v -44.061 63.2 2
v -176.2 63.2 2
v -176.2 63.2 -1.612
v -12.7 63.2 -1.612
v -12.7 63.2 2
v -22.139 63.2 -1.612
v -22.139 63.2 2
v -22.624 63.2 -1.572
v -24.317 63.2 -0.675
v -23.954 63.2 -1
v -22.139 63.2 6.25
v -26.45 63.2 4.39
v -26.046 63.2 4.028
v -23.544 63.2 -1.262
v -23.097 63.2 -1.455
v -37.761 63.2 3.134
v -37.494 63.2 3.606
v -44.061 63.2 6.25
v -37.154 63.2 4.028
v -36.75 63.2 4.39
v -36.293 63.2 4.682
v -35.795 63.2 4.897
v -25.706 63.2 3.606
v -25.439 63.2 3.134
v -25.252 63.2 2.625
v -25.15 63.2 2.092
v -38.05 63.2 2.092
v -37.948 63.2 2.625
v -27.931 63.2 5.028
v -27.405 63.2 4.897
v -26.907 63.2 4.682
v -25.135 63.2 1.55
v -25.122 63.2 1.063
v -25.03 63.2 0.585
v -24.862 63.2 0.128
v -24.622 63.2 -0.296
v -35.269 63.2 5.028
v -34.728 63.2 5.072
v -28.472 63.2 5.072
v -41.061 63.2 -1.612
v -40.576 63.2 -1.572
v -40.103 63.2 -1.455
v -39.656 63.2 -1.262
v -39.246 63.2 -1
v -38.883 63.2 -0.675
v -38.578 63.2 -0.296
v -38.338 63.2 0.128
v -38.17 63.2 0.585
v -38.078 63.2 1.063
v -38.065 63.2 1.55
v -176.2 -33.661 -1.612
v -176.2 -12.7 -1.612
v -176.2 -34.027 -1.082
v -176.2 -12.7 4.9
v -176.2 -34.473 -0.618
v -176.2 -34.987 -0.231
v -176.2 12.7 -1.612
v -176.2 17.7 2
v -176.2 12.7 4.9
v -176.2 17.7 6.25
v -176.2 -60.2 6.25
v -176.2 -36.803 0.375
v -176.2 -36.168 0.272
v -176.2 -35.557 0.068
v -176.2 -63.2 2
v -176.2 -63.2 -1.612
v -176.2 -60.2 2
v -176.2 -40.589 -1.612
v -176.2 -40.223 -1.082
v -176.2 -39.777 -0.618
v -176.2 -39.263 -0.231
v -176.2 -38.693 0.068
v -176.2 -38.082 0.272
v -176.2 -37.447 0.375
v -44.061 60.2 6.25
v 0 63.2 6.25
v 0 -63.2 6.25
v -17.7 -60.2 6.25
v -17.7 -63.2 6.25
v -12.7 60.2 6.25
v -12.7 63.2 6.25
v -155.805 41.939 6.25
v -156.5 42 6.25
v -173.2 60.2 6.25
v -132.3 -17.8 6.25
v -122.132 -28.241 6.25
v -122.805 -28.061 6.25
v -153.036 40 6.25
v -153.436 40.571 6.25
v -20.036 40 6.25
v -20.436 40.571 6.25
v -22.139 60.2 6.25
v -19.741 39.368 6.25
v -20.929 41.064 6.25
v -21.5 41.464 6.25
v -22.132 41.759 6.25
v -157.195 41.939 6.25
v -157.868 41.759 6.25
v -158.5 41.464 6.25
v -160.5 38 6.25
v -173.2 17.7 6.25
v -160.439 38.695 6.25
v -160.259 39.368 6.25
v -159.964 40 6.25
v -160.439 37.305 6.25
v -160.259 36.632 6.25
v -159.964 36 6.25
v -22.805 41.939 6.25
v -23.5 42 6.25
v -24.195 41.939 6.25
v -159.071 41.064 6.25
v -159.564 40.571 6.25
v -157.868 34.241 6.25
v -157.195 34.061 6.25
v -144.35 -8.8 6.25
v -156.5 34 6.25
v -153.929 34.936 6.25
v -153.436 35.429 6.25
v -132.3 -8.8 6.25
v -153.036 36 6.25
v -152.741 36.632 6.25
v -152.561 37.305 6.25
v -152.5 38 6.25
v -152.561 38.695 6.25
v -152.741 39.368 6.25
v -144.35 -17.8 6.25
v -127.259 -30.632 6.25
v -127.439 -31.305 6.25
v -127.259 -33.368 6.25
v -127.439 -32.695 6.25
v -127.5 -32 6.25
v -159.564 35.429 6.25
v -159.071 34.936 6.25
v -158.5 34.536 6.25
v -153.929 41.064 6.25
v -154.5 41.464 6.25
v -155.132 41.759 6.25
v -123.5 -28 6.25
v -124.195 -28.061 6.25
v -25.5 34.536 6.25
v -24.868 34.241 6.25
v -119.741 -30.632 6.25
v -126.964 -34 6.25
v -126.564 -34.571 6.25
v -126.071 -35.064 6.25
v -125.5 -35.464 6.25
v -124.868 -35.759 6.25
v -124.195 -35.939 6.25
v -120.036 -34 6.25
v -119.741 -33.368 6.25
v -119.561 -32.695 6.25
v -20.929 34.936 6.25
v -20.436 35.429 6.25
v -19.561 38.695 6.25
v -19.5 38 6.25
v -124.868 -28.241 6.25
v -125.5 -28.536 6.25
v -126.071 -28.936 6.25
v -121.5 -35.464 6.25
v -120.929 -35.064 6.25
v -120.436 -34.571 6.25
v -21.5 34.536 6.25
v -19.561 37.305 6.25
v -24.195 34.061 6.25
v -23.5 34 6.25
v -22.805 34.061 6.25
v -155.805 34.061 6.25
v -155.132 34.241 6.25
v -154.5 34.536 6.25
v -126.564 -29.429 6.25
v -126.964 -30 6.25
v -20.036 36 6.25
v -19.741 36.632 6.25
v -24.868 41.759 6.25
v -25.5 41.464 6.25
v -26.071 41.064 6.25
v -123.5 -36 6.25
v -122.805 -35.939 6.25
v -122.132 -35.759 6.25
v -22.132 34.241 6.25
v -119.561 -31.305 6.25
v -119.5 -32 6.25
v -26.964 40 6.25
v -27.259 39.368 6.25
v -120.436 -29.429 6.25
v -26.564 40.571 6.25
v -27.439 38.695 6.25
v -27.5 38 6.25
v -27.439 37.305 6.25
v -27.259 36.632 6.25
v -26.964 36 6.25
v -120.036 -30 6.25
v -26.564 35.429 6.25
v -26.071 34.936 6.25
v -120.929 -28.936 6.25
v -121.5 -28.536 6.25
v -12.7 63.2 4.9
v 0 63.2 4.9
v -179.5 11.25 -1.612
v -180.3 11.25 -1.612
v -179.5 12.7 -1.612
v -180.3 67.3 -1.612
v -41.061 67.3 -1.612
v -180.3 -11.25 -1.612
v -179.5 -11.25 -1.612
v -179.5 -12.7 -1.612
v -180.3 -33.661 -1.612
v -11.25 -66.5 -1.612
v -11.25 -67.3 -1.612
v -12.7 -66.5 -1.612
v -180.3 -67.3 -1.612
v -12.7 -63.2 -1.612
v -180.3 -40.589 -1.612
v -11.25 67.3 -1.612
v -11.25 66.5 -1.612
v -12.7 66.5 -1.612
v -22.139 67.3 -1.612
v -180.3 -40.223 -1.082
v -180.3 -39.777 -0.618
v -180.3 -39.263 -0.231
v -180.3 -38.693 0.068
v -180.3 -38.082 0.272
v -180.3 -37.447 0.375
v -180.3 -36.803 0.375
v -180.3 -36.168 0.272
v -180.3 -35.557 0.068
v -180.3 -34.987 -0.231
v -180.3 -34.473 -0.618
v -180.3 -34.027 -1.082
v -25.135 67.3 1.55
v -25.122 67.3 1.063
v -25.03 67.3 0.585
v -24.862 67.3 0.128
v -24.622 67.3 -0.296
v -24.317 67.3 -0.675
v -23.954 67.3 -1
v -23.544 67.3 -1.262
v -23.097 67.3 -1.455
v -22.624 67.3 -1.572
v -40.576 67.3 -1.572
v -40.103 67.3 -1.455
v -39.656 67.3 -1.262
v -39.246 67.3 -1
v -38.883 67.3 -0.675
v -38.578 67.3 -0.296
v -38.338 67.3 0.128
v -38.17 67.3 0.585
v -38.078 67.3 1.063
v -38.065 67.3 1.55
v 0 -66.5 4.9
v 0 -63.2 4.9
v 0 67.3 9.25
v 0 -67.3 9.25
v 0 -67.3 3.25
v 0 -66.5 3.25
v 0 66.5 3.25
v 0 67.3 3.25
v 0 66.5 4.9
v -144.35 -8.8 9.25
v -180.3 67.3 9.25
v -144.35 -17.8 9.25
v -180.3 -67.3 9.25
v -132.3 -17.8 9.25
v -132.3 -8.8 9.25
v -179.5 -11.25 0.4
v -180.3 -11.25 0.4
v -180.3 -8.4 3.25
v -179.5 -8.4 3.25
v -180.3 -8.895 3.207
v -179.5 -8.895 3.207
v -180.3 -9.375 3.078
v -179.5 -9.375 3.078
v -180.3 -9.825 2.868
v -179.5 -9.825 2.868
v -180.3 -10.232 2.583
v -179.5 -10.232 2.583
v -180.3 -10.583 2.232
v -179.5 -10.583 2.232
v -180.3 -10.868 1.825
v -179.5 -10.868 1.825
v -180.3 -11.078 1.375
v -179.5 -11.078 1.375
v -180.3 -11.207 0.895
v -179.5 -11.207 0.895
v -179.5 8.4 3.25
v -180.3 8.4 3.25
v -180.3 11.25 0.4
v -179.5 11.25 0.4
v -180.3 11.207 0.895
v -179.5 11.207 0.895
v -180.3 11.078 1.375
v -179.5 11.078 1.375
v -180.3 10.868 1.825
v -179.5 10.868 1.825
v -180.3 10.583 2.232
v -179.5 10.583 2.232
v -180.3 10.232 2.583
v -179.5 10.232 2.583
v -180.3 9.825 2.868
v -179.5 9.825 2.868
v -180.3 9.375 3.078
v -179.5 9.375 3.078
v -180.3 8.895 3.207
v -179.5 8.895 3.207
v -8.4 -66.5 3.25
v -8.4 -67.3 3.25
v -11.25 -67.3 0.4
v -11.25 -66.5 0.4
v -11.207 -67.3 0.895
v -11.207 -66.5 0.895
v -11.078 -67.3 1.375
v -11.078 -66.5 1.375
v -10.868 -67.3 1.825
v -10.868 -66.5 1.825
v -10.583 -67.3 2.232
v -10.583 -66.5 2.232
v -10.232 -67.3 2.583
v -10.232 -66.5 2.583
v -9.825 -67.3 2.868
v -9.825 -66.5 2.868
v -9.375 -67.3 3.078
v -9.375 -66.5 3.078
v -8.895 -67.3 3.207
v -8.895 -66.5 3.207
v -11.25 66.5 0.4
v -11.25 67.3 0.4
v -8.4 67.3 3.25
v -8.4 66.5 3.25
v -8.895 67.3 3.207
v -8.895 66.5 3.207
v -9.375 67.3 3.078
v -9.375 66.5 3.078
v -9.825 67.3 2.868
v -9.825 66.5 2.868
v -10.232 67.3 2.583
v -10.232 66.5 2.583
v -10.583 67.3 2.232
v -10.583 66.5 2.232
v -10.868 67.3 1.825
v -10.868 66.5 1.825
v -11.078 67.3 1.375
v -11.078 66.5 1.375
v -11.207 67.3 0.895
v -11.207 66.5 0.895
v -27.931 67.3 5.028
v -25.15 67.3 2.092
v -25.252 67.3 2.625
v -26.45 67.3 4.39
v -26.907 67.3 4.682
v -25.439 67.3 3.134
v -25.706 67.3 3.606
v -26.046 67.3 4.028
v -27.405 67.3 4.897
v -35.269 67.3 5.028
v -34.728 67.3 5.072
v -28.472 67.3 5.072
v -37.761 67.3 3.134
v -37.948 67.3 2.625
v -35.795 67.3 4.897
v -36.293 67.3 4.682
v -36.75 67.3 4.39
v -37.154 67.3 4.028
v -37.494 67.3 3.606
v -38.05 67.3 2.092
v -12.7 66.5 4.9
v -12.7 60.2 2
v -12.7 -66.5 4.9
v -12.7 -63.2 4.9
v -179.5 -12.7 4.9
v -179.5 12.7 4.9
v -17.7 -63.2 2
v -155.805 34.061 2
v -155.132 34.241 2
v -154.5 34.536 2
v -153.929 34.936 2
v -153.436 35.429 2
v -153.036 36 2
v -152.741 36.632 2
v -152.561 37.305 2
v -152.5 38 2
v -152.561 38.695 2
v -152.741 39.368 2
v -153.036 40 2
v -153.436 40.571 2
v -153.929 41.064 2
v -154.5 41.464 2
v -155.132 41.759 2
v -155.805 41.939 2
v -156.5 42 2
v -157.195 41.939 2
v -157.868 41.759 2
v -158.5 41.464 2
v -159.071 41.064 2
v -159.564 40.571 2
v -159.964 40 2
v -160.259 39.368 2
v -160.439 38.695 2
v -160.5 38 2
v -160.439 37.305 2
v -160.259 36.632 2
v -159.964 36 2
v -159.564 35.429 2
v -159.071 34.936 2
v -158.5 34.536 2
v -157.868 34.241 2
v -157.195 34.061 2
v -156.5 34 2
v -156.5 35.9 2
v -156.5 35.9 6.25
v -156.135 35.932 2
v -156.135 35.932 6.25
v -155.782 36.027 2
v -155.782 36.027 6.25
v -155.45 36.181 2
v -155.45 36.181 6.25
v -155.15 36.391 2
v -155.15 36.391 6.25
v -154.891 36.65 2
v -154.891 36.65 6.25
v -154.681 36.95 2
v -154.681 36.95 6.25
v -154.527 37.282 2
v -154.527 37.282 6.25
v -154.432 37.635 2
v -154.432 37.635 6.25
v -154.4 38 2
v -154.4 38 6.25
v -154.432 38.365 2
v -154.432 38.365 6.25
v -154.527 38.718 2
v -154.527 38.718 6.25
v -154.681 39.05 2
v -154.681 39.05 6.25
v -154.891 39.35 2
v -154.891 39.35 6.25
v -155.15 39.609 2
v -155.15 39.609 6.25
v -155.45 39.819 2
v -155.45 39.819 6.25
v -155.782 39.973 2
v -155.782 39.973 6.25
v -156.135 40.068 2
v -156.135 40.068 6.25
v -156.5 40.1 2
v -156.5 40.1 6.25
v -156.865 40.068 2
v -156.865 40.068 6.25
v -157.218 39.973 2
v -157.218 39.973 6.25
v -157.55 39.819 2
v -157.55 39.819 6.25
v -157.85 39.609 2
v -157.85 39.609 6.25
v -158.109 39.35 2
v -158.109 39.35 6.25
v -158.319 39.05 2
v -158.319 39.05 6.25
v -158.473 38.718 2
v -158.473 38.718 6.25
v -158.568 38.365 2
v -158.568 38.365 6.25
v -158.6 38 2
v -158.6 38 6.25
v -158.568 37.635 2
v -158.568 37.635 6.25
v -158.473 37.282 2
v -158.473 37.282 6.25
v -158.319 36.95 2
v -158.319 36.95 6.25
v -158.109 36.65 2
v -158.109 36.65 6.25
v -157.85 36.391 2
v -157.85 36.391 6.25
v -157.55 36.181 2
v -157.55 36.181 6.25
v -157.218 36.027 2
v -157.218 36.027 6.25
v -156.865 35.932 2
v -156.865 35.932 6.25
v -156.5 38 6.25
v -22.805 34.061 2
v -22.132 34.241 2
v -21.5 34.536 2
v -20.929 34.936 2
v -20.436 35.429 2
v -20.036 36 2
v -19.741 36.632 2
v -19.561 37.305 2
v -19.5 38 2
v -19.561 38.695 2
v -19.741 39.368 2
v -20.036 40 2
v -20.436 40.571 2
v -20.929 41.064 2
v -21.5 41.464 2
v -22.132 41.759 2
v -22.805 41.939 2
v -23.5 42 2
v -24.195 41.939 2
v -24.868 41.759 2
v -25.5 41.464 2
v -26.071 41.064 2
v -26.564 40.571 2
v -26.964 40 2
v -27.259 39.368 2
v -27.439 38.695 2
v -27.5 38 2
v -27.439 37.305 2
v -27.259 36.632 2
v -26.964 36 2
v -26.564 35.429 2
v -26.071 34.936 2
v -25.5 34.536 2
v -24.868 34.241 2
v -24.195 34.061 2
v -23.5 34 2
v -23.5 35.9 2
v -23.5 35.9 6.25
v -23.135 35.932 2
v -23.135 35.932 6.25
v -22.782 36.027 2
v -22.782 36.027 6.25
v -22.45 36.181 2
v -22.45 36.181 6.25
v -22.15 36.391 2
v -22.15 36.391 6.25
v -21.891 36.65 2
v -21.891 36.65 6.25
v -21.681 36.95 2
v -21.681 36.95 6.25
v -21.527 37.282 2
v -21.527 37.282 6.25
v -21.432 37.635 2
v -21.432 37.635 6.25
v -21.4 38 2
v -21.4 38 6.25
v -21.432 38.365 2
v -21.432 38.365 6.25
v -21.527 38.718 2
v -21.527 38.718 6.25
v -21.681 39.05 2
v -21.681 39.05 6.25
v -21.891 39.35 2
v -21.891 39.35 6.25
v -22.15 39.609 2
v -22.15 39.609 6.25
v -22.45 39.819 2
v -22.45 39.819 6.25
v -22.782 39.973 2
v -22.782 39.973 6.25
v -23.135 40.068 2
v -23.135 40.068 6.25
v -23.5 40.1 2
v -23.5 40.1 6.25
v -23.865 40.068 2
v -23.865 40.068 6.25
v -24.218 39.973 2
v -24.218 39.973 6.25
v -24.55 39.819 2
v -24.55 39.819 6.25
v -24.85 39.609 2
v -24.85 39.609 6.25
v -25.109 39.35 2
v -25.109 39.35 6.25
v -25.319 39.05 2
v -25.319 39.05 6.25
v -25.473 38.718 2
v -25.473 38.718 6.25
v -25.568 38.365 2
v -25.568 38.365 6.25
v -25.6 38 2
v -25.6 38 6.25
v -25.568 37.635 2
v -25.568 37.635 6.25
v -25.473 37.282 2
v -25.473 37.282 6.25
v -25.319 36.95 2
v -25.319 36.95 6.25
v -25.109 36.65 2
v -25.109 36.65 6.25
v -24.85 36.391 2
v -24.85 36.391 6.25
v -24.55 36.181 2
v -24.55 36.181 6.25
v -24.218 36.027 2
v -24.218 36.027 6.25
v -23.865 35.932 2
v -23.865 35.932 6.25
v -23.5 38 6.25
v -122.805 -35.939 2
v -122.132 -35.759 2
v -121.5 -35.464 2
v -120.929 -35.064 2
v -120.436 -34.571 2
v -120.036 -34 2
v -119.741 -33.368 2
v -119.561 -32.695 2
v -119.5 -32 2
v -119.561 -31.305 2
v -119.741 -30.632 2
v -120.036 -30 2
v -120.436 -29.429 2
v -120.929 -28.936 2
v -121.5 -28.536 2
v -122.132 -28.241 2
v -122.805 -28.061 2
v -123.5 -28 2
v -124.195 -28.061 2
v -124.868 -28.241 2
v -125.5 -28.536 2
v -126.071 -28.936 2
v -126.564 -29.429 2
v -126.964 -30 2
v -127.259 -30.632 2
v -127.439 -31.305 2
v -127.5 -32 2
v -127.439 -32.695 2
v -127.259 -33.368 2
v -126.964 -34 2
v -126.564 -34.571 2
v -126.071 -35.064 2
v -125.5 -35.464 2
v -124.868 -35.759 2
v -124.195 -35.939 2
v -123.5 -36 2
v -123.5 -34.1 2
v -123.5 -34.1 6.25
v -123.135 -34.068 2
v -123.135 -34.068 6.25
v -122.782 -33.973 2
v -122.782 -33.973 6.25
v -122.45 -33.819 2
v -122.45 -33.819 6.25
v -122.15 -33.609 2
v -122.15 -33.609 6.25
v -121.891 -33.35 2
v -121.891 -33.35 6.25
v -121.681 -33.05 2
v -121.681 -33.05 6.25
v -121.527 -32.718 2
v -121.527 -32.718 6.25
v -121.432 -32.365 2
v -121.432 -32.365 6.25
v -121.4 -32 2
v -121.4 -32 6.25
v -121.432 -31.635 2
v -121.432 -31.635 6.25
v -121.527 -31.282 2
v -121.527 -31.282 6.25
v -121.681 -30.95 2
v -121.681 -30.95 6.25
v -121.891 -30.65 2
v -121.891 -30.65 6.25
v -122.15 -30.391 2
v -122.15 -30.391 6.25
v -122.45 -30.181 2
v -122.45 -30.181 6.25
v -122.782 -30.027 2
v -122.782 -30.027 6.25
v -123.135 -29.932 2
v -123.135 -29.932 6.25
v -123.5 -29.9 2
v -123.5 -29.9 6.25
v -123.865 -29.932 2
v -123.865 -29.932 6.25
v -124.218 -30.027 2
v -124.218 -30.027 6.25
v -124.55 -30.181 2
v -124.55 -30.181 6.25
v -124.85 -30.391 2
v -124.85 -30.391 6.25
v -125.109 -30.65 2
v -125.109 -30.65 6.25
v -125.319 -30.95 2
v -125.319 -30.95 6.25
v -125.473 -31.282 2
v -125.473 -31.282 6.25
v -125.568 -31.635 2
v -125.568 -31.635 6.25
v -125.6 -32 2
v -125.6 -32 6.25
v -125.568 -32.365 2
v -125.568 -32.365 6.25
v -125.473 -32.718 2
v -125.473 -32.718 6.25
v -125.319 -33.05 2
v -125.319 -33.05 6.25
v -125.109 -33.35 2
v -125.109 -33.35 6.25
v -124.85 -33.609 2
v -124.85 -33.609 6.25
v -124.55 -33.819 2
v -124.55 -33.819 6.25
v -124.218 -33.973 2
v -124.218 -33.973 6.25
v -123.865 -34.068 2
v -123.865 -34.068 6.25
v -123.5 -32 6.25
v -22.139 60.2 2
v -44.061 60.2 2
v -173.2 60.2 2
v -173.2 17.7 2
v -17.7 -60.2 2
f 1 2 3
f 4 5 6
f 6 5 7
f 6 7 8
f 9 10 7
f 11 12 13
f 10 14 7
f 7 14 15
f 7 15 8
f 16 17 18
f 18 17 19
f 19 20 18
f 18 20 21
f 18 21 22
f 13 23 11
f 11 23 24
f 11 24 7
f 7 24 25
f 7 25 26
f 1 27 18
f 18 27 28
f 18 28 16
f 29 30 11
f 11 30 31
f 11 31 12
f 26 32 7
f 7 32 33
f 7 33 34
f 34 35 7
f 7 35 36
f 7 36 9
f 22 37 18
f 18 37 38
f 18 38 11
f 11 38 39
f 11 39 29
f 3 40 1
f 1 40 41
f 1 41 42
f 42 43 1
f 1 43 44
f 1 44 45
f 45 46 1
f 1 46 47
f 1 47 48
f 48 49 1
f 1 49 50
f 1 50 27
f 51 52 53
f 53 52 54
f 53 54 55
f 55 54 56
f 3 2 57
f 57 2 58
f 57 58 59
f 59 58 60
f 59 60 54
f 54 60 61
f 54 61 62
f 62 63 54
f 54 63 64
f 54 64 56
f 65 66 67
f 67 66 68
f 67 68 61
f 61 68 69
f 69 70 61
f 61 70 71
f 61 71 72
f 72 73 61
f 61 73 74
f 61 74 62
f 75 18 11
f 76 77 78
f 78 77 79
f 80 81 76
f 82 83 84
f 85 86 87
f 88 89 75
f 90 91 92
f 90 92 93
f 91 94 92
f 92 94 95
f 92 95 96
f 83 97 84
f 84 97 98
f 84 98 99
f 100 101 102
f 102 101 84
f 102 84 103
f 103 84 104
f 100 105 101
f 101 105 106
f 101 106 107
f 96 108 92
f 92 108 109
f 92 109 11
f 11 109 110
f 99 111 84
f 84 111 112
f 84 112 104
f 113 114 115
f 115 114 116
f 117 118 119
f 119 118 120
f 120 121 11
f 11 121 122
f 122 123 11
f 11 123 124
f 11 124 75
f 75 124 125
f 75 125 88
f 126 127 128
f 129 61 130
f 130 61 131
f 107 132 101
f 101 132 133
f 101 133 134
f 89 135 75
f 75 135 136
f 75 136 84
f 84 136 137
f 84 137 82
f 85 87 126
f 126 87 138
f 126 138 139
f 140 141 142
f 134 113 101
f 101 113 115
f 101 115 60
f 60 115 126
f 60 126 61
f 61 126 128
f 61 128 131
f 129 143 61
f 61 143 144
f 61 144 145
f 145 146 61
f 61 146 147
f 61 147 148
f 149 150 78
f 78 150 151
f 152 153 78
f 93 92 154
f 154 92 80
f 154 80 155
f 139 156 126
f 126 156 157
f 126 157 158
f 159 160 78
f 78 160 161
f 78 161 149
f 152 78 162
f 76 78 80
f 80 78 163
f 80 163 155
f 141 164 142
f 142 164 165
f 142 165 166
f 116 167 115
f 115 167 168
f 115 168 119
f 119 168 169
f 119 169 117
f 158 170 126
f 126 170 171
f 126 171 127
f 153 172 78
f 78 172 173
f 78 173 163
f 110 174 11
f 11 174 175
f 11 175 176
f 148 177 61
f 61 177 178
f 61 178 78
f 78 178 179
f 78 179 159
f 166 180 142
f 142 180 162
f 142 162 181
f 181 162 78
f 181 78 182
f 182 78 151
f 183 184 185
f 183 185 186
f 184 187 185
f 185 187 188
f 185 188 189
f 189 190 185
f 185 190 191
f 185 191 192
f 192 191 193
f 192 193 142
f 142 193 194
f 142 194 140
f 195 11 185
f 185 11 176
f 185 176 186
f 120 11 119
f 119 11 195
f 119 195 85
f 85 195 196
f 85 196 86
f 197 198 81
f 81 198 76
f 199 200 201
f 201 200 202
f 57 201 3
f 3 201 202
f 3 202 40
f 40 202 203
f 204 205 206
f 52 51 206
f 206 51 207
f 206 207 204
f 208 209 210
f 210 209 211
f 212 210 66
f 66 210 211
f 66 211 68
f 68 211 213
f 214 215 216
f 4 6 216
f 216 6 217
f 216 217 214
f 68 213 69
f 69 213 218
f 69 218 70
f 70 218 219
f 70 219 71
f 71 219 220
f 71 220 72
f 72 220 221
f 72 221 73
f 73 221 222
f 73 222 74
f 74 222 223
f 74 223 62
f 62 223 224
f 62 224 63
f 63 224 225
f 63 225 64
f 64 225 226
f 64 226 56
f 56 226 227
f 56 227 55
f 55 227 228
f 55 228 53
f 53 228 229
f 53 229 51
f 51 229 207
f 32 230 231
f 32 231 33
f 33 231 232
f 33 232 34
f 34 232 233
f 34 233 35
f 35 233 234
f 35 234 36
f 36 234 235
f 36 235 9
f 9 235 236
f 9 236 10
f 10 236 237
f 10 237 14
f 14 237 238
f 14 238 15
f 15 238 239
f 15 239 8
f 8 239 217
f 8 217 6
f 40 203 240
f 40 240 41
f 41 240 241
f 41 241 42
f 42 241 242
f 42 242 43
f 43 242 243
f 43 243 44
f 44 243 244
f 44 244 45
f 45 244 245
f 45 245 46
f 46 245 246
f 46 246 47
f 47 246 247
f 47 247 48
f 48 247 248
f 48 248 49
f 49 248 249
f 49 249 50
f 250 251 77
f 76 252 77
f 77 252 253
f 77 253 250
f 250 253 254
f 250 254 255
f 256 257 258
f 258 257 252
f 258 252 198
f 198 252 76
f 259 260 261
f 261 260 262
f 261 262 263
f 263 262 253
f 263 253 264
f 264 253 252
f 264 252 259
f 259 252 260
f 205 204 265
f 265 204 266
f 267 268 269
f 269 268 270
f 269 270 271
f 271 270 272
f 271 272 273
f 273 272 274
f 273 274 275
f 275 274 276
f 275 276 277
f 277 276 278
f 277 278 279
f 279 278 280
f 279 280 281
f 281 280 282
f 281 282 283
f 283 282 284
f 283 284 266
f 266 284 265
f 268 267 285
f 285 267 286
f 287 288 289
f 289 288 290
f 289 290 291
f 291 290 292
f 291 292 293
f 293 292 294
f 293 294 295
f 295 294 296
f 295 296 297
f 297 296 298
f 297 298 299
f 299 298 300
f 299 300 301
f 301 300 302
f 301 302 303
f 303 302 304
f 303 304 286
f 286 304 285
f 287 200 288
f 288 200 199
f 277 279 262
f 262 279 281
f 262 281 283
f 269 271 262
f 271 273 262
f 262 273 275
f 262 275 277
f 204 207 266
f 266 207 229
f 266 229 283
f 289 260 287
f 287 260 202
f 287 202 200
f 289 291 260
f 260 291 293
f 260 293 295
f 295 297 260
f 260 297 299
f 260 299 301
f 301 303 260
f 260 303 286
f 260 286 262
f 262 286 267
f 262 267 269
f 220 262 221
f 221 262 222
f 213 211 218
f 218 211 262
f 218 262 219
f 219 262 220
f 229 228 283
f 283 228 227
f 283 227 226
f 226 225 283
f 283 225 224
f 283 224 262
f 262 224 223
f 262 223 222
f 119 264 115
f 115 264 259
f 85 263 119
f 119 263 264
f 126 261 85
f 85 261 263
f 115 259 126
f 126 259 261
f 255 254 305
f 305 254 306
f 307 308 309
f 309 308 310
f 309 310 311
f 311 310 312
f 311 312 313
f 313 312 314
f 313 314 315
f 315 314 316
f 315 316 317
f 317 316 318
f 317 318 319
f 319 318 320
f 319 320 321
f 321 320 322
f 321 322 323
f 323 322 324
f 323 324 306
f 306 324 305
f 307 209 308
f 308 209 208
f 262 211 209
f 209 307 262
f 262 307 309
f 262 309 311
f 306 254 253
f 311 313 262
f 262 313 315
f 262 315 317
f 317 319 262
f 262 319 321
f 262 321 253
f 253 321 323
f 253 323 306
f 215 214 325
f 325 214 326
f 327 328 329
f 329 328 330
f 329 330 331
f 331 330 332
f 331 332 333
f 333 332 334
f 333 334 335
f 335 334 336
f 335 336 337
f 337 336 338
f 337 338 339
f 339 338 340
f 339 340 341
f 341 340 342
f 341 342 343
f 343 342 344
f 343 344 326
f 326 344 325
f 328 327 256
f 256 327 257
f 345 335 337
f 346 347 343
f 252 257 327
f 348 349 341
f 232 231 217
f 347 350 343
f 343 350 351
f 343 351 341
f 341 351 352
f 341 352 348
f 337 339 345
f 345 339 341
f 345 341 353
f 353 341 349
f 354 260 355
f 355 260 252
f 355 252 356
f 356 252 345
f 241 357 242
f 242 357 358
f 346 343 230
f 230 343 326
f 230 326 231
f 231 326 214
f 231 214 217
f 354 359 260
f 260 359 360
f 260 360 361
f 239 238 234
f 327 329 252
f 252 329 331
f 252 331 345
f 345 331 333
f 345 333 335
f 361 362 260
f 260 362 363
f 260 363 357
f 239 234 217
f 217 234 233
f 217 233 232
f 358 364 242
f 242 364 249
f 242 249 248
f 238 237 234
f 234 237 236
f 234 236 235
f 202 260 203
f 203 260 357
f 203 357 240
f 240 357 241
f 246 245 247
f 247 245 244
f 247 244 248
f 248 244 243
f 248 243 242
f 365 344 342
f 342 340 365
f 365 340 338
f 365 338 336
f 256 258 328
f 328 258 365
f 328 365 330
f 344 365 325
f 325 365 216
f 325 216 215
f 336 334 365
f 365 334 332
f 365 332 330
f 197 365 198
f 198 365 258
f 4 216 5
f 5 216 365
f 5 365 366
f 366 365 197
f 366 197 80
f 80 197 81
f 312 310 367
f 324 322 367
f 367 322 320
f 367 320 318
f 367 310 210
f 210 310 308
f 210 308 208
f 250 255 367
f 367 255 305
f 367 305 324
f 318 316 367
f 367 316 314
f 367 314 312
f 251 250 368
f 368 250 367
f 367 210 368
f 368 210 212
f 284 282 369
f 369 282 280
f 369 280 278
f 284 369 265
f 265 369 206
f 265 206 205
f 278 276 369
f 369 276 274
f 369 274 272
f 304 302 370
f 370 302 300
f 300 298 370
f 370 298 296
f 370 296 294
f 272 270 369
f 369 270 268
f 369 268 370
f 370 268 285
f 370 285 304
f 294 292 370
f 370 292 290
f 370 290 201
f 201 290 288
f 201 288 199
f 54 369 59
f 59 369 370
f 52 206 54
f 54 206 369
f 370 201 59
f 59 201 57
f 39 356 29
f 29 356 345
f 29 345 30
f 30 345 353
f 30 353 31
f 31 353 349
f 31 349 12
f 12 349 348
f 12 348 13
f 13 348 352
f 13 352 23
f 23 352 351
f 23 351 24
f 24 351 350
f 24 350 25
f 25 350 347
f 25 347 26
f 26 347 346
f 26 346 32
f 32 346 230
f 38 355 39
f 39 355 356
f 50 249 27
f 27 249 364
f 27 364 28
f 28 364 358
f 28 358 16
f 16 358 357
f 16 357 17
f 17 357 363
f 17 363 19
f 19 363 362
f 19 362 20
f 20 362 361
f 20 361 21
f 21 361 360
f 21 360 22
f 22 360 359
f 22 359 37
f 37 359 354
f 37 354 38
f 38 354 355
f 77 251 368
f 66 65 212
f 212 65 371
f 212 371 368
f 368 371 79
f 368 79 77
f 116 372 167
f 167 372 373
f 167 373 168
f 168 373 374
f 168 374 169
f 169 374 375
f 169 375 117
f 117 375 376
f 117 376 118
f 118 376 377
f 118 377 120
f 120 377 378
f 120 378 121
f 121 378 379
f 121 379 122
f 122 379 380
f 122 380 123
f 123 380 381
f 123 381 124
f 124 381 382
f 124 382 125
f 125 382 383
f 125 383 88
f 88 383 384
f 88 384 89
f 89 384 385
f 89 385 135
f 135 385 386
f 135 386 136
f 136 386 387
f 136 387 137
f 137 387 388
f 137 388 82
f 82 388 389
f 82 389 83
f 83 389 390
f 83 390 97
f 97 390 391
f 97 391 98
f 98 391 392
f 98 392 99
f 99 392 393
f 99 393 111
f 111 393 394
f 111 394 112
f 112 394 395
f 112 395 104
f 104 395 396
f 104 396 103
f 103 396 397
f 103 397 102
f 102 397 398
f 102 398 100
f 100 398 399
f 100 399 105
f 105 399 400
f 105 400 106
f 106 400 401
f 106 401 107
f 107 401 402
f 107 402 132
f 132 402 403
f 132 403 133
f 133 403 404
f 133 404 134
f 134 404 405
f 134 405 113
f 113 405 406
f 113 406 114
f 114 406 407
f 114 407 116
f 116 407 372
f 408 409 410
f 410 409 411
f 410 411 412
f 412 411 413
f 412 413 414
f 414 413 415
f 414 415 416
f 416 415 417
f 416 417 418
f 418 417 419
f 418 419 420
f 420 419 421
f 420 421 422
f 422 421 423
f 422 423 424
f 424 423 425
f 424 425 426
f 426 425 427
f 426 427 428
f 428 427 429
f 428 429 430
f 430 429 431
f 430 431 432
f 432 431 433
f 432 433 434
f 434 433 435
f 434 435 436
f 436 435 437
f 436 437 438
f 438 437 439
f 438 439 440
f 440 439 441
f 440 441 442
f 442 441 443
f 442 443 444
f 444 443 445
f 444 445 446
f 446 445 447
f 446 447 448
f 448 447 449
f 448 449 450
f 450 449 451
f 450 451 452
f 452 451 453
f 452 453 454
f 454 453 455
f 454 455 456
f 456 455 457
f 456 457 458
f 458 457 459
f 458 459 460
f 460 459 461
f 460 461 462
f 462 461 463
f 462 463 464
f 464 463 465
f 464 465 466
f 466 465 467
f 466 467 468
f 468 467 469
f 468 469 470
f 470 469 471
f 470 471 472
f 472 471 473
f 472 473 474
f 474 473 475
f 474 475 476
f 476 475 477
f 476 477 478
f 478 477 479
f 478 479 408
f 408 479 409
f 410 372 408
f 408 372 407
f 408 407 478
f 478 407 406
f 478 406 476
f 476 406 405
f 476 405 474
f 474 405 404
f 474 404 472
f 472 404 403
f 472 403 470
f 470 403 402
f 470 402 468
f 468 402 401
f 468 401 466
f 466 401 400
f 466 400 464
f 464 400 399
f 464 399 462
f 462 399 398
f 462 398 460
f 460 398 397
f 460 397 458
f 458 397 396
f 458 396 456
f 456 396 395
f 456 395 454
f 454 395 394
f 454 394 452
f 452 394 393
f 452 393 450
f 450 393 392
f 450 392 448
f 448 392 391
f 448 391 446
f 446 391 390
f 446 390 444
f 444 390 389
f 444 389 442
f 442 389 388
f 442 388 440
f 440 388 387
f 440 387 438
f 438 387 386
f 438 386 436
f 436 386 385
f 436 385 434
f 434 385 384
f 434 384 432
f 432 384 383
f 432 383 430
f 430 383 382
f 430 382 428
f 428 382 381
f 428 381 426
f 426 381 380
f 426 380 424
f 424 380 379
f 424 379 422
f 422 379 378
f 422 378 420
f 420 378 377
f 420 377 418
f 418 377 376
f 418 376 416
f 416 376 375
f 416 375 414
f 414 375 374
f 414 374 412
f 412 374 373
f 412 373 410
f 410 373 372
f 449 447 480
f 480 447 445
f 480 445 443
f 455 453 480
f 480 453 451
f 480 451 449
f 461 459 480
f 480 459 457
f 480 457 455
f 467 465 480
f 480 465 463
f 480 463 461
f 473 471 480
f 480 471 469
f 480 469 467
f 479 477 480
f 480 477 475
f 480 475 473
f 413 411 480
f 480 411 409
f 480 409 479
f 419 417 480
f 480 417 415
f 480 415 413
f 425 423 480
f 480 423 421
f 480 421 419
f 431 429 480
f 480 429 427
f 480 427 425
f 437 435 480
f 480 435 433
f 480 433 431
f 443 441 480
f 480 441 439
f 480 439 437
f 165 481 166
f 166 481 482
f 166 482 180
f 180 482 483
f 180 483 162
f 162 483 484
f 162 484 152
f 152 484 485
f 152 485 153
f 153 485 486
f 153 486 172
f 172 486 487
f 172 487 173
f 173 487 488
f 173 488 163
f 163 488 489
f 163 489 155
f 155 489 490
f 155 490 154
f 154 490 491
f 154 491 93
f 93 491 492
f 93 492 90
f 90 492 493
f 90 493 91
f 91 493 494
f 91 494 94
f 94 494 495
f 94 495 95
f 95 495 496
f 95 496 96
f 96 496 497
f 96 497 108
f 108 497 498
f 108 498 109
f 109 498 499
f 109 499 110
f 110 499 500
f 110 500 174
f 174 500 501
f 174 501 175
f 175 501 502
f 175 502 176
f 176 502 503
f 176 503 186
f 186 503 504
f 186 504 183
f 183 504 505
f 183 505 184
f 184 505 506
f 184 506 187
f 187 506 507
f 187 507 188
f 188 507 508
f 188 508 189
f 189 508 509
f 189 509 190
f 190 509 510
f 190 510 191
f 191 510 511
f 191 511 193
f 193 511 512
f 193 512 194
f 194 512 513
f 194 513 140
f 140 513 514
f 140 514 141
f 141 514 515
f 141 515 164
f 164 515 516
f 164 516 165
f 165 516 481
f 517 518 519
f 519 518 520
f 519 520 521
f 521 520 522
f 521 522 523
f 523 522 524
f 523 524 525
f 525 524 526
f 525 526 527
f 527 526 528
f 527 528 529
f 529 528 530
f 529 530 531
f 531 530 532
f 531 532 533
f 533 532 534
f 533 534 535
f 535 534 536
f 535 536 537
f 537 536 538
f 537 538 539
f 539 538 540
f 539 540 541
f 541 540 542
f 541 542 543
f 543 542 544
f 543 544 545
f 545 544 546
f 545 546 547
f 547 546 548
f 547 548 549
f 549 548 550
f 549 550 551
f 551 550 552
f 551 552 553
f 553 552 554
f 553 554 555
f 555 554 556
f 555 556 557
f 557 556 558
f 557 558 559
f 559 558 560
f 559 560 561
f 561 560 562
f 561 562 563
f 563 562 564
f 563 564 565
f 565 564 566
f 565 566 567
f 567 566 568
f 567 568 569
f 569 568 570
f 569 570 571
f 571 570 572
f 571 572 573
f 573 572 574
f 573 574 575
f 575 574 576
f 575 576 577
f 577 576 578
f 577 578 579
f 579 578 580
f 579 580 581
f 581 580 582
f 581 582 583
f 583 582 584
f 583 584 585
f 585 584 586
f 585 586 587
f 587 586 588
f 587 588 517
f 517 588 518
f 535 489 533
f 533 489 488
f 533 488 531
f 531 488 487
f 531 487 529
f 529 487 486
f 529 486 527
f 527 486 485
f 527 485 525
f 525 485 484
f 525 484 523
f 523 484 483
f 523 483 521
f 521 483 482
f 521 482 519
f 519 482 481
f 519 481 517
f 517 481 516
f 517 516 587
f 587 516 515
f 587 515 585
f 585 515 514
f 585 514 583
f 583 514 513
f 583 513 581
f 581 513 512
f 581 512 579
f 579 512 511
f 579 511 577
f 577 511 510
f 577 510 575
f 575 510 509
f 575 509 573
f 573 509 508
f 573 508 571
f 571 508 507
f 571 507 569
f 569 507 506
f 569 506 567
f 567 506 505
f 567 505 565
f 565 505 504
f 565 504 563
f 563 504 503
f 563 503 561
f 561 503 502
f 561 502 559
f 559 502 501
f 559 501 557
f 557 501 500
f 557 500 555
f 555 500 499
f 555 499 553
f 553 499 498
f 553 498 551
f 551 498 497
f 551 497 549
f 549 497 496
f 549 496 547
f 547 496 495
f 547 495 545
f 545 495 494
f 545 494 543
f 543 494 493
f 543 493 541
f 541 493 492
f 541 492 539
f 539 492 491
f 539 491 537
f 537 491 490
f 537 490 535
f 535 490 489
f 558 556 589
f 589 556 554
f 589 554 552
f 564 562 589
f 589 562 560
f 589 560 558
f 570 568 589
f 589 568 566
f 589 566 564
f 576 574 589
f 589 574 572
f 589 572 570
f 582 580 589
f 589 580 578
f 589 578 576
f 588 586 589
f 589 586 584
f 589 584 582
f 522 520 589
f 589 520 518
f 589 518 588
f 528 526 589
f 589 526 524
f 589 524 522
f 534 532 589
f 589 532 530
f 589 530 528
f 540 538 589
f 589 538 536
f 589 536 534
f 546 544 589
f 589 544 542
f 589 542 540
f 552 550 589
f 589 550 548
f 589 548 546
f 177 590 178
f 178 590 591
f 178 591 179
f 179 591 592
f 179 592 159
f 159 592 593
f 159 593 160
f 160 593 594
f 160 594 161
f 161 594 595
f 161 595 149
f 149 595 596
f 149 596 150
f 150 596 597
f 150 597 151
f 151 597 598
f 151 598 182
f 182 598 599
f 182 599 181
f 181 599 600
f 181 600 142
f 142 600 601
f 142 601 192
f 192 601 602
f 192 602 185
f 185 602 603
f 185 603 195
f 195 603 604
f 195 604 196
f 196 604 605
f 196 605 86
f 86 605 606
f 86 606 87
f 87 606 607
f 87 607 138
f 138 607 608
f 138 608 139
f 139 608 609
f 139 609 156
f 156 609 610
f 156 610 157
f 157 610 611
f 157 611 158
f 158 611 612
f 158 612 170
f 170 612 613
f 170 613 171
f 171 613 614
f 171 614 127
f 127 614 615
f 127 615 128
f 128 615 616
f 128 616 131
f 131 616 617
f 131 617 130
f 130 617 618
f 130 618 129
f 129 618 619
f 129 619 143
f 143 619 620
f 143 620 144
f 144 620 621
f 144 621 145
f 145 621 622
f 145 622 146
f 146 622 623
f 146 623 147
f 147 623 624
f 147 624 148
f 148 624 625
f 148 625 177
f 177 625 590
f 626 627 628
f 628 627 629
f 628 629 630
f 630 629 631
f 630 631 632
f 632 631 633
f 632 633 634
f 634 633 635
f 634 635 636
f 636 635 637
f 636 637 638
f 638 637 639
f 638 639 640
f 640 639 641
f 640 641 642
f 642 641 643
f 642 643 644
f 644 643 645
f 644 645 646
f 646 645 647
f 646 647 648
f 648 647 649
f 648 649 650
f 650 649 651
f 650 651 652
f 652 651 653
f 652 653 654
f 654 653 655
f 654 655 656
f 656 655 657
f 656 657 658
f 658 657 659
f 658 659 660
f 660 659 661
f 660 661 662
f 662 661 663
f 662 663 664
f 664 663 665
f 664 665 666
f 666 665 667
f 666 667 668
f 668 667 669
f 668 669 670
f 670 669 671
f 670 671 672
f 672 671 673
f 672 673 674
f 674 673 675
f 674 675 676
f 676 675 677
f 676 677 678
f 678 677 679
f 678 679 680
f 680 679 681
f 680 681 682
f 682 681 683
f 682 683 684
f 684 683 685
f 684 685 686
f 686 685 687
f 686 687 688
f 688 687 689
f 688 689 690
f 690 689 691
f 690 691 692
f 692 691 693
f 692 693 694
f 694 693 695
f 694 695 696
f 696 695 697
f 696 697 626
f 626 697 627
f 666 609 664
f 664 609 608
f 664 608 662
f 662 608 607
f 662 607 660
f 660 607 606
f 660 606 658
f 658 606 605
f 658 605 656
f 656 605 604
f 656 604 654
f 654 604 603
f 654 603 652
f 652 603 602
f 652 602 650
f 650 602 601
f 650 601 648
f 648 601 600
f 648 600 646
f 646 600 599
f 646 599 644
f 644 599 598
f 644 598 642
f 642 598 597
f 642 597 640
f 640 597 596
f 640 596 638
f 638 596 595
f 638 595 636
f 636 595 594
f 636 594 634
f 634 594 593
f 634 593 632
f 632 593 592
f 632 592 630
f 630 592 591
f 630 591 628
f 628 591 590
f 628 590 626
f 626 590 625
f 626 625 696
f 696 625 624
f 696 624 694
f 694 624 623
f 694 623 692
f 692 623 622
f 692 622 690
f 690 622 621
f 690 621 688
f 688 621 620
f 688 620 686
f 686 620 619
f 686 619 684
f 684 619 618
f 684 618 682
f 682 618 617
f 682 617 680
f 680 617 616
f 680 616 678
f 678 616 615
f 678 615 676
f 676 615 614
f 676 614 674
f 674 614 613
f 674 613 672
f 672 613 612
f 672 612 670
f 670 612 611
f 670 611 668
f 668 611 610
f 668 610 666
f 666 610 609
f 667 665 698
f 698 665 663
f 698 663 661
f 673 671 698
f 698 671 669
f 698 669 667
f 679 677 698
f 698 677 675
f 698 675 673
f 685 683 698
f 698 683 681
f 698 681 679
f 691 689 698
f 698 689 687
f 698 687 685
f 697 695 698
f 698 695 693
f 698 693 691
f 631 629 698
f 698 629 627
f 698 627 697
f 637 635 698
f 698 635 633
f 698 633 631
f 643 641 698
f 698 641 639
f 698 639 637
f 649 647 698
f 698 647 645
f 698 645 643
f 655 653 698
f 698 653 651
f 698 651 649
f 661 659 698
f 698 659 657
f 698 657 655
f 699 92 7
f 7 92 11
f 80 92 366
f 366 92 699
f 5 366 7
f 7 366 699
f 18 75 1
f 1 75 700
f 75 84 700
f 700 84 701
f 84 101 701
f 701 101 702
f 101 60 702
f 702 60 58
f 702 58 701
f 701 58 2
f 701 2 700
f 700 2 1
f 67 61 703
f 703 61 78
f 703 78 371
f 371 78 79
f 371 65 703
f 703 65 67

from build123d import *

# Parameters (mm, degrees)
BOSS_EXTRUDE1_START     = 3.25
BOSS_EXTRUDE1_OUTLINE_W = 176
BOSS_EXTRUDE1_OUTLINE_H = 126
BOSS_EXTRUDE1_DEPTH     = 6
BOSS_EXTRUDE2_DEPTH     = 3.3
BOSS_EXTRUDE4_DEPTH     = 1
SKETCH7_W               = 12.05
SKETCH7_H               = 9
CUT_EXTRUDE1_DEPTH      = 6
BOSS_EXTRUDE5_DEPTH     = 3.3
BOSS_EXTRUDE7_DEPTH     = 1
BOSS_EXTRUDE8_START     = 2.6
BOSS_EXTRUDE8_DEPTH     = 2.6
BOSS_EXTRUDE9_START     = 0.7
BOSS_EXTRUDE9_DEPTH     = 0.7
BOSS_EXTRUDE10_START    = 1
BOSS_EXTRUDE10_DEPTH    = 1
SKETCH14_W              = 12.7
SKETCH14_H              = 3.5
SKETCH14_W_2            = 3.5
SKETCH14_H_2            = 25.4
CUT_EXTRUDE2_DEPTH      = 6.5116
CUT_EXTRUDE3_REACH      = 194.673
SKETCH15_R              = 4
CUT_EXTRUDE4_DEPTH      = 4.3
FILLET1_R               = 3
CUT_EXTRUDE5_START      = -4.8616
CUT_EXTRUDE5_DEPTH      = 4.8616
SKETCH19_W              = 176.2
SKETCH19_H              = 126.4
CUT_EXTRUDE6_DEPTH      = 3
SKETCH16_R              = 4
SKETCH16_R_2            = 2.1
BOSS_EXTRUDE11_DEPTH    = 4.25
SKETCH20_W              = 129.139207087
SKETCH20_H              = 3
SKETCH20_W_2            = 9.439207087
SKETCH20_W_3            = 158.5
BOSS_EXTRUDE12_DEPTH    = 4.25


# Read off the part's stored shape, not the designer's step: Boss-Extrude1, Cut-Extrude5
with BuildPart() as part:
    # Boss-Extrude1 outline → Boss-Extrude1 (new body)
    with BuildSketch(Plane.XY.offset(BOSS_EXTRUDE1_START)):
        with Locations((-88, 0)):
            Rectangle(BOSS_EXTRUDE1_OUTLINE_W, BOSS_EXTRUDE1_OUTLINE_H)
    extrude(amount=BOSS_EXTRUDE1_DEPTH)

    # Sketch3 → Boss-Extrude2 (add)
    with BuildSketch(Plane.ZY.offset(176)):
        with BuildLine():
            Line((9.25, -63), (9.25, 63))
            Line((9.25, 63), (-1.6116, 63))
            Line((-1.6116, 63), (-1.6116, 12.5))
            Line((-1.6116, 12.5), (0.4, 12.5))
            ThreePointArc((0.4, 12.5), (3.228427125, 11.328427125), (4.4, 8.5))
            Line((4.4, 8.5), (4.4, -8.5))
            ThreePointArc((4.4, -8.5), (3.228427125, -11.328427125), (0.4, -12.5))
            Line((0.4, -12.5), (-1.6116, -12.5))
            Line((-1.6116, -12.5), (-1.6116, -63))
            Line((-1.6116, -63), (9.25, -63))
        make_face()
    extrude(amount=BOSS_EXTRUDE2_DEPTH)

    # Sketch6 → Boss-Extrude4 (add)
    with BuildSketch(Plane.ZY.offset(179.3)):
        with BuildLine():
            Line((9.25, -63), (9.25, 63))
            Line((9.25, 63), (-1.6116, 63))
            Line((-1.6116, 63), (-1.6116, 11.25))
            Line((-1.6116, 11.25), (0.4, 11.25))
            ThreePointArc((0.4, 11.25), (2.415254326, 10.415254326), (3.25, 8.4))
            Line((3.25, 8.4), (3.25, -8.4))
            ThreePointArc((3.25, -8.4), (2.415254326, -10.415254326), (0.4, -11.25))
            Line((0.4, -11.25), (-1.6116, -11.25))
            Line((-1.6116, -11.25), (-1.6116, -63))
            Line((-1.6116, -63), (9.25, -63))
        make_face()
    extrude(amount=BOSS_EXTRUDE4_DEPTH)

    # Sketch7 → Cut-Extrude1 (cut)
    with BuildSketch(Plane(origin=(0, 0, 3.25), x_dir=(-1, 0, 0), z_dir=(0, 0, -1))):
        with Locations((138.325, -13.3)):
            Rectangle(SKETCH7_W, SKETCH7_H)
    extrude(amount=-CUT_EXTRUDE1_DEPTH, mode=Mode.SUBTRACT)

    # Sketch8 → Boss-Extrude5 (add)
    with BuildSketch(Plane.XZ.offset(63)):
        with BuildLine():
            Line((0, 9.25), (-180.3, 9.25))
            Line((-180.3, 9.25), (-180.3, -1.6116))
            Line((-180.3, -1.6116), (-11.957378406, -1.6116))
            ThreePointArc((-11.957378406, -1.6116), (-11.96744863, 2.394191566), (-8.5, 4.4))
            Line((-8.5, 4.4), (0, 4.4))
            Line((0, 4.4), (0, 9.25))
        make_face()
    extrude(amount=BOSS_EXTRUDE5_DEPTH)

    # Sketch10 → Boss-Extrude7 (add)
    with BuildSketch(Plane.XZ.offset(66.3)):
        with BuildLine():
            Line((0, 9.25), (-180.3, 9.25))
            Line((-180.3, 9.25), (-180.3, -1.6116))
            Line((-180.3, -1.6116), (-11.25, -1.6116))
            Line((-11.25, -1.6116), (-11.25, 0.4))
            ThreePointArc((-11.25, 0.4), (-10.415254326, 2.415254326), (-8.4, 3.25))
            Line((-8.4, 3.25), (0, 3.25))
            Line((0, 3.25), (0, 9.25))
        make_face()
    extrude(amount=BOSS_EXTRUDE7_DEPTH)

    # Sketch11 → Boss-Extrude8 (add)
    with BuildSketch(Plane(origin=(0, 63, 0), x_dir=(1, 0, 0), z_dir=(0, 1, 0)).offset(BOSS_EXTRUDE8_START)):
        with BuildLine():
            Line((-180.3, -9.25), (0, -9.25))
            Line((0, -9.25), (0, -4.4))
            Line((0, -4.4), (-8.5, -4.4))
            ThreePointArc((-8.5, -4.4), (-11.96744863, -2.394191566), (-11.957378406, 1.6116))
            Line((-11.957378406, 1.6116), (-180.3, 1.6116))
            Line((-180.3, 1.6116), (-180.3, -9.25))
        make_face()
    extrude(amount=-BOSS_EXTRUDE8_DEPTH)

    # Sketch12 → Boss-Extrude9 (add)
    with BuildSketch(Plane(origin=(0, 65.6, 0), x_dir=(1, 0, 0), z_dir=(0, 1, 0)).offset(BOSS_EXTRUDE9_START)):
        with BuildLine():
            Line((-180.3, -9.25), (0, -9.25))
            Line((0, -9.25), (0, -4.4))
            Line((0, -4.4), (-8.5, -4.4))
            ThreePointArc((-8.5, -4.4), (-11.96744863, -2.394191566), (-11.957378406, 1.6116))
            Line((-11.957378406, 1.6116), (-180.3, 1.6116))
            Line((-180.3, 1.6116), (-180.3, -9.25))
        make_face()
    extrude(amount=-BOSS_EXTRUDE9_DEPTH)

    # Sketch13 → Boss-Extrude10 (add)
    with BuildSketch(Plane(origin=(0, 66.3, 0), x_dir=(1, 0, 0), z_dir=(0, 1, 0)).offset(BOSS_EXTRUDE10_START)):
        with BuildLine():
            Line((-180.3, -9.25), (0, -9.25))
            Line((0, -9.25), (0, -3.25))
            Line((0, -3.25), (-8.4, -3.25))
            ThreePointArc((-8.4, -3.25), (-10.415254326, -2.415254326), (-11.25, -0.4))
            Line((-11.25, -0.4), (-11.25, 1.6116))
            Line((-11.25, 1.6116), (-180.3, 1.6116))
            Line((-180.3, 1.6116), (-180.3, -9.25))
        make_face()
    extrude(amount=-BOSS_EXTRUDE10_DEPTH)

    # Sketch14 → Cut-Extrude2 (cut)
    with BuildSketch(Plane(origin=(0, 0, -1.6116), x_dir=(-1, 0, 0), z_dir=(0, 0, -1))):
        with Locations((6.35, 64.75)):
            Rectangle(SKETCH14_W, SKETCH14_H)
        with Locations((177.75, 0)):
            Rectangle(SKETCH14_W_2, SKETCH14_H_2)
        with Locations((6.35, -64.75)):
            Rectangle(SKETCH14_W, SKETCH14_H)
    extrude(amount=-CUT_EXTRUDE2_DEPTH, mode=Mode.SUBTRACT)

    # Sketch15 → Cut-Extrude3 (cut, up to next)
    with BuildSketch(Plane.ZY.offset(180.3), mode=Mode.PRIVATE) as cut_extrude3_sk1:
        with Locations((-3.6116, -37.125)):
            Circle(SKETCH15_R)
    cut_extrude3_tool1 = extrude(cut_extrude3_sk1.sketch, amount=-CUT_EXTRUDE3_REACH, mode=Mode.PRIVATE) & part.part
    add(cut_extrude3_tool1.solids().sort_by_distance((-180.3, -37.125, -3.6116))[0], mode=Mode.SUBTRACT)

    # Sketch17 → Cut-Extrude4 (cut)
    with BuildSketch(Plane(origin=(0, 67.3, 0), x_dir=(1, 0, 0), z_dir=(0, 1, 0))):
        with BuildLine():
            Line((-28.4716, -5.0716), (-34.7284, -5.0716))
            ThreePointArc((-34.7284, -5.0716), (-38.07, -1.73), (-34.7284, 1.6116))
            Line((-34.7284, 1.6116), (-28.4716, 1.6116))
            ThreePointArc((-28.4716, 1.6116), (-25.13, -1.73), (-28.4716, -5.0716))
        make_face()
    extrude(amount=-CUT_EXTRUDE4_DEPTH, mode=Mode.SUBTRACT)

    # Fillet1
    fillet1_edges = [part.edges().sort_by_distance(p)[0] for p in [
        (-34.7284, 65.15, -1.6116),
    ]]
    fillet(fillet1_edges, radius=FILLET1_R)
    fillet1_2_edges = [part.edges().sort_by_distance(p)[0] for p in [
        (-28.4716, 65.15, -1.6116),
    ]]
    fillet(fillet1_2_edges, radius=FILLET1_R)

    # Cut-Extrude5 outline → Cut-Extrude5 (cut)
    with BuildSketch(Plane(origin=(0, 0, -1.6116), x_dir=(-1, 0, 0), z_dir=(0, 0, -1)).offset(CUT_EXTRUDE5_START)):
        Polygon((176, 63), (176, -63), (0, -63), (0, -63.2), (176.2, -63.2), (176.2, 63.2), (0, 63.2), (0, 63), align=None)
    extrude(amount=CUT_EXTRUDE5_DEPTH, mode=Mode.SUBTRACT)

    # Sketch19 → Cut-Extrude6 (cut)
    with BuildSketch(Plane(origin=(0, 0, 3.25), x_dir=(-1, 0, 0), z_dir=(0, 0, -1))):
        with Locations((88.1, 0)):
            Rectangle(SKETCH19_W, SKETCH19_H)
    extrude(amount=-CUT_EXTRUDE6_DEPTH, mode=Mode.SUBTRACT)

    # Sketch16 → Boss-Extrude11 (add)
    # profile 1 of 3: a face of its own
    with BuildSketch(Plane(origin=(0, 0, 6.25), x_dir=(-1, 0, 0), z_dir=(0, 0, -1))):
        with Locations(Location((156.5, 38, 0), (0, 0, 270))):
            Circle(SKETCH16_R)
        with Locations((156.5, 38)):
            Circle(SKETCH16_R_2, mode=Mode.SUBTRACT)
    # profile 2 of 3: a face of its own
    with BuildSketch(Plane(origin=(0, 0, 6.25), x_dir=(-1, 0, 0), z_dir=(0, 0, -1))):
        with Locations(Location((23.5, 38, 0), (0, 0, 270))):
            Circle(SKETCH16_R)
        with Locations((23.5, 38)):
            Circle(SKETCH16_R_2, mode=Mode.SUBTRACT)
    # profile 3 of 3: a face of its own
    with BuildSketch(Plane(origin=(0, 0, 6.25), x_dir=(-1, 0, 0), z_dir=(0, 0, -1))):
        with Locations(Location((123.5, -32, 0), (0, 0, 270))):
            Circle(SKETCH16_R)
        with Locations((123.5, -32)):
            Circle(SKETCH16_R_2, mode=Mode.SUBTRACT)
    extrude(amount=BOSS_EXTRUDE11_DEPTH)

    # Sketch20 → Boss-Extrude12 (add)
    with BuildSketch(Plane(origin=(0, 0, 6.25), x_dir=(-1, 0, 0), z_dir=(0, 0, -1))):
        with Locations((108.630396457, 61.7)):
            Rectangle(SKETCH20_W, SKETCH20_H)
        with Locations((17.419603544, 61.7)):
            Rectangle(SKETCH20_W_2, SKETCH20_H)
        Polygon((173.2, 17.7), (176.2, 17.7), (176.2, 63.2), (173.2, 63.2), (173.2, 60.2), align=None)
        with Locations((96.95, -61.7)):
            Rectangle(SKETCH20_W_3, SKETCH20_H)
    extrude(amount=BOSS_EXTRUDE12_DEPTH)


solid = part.part
